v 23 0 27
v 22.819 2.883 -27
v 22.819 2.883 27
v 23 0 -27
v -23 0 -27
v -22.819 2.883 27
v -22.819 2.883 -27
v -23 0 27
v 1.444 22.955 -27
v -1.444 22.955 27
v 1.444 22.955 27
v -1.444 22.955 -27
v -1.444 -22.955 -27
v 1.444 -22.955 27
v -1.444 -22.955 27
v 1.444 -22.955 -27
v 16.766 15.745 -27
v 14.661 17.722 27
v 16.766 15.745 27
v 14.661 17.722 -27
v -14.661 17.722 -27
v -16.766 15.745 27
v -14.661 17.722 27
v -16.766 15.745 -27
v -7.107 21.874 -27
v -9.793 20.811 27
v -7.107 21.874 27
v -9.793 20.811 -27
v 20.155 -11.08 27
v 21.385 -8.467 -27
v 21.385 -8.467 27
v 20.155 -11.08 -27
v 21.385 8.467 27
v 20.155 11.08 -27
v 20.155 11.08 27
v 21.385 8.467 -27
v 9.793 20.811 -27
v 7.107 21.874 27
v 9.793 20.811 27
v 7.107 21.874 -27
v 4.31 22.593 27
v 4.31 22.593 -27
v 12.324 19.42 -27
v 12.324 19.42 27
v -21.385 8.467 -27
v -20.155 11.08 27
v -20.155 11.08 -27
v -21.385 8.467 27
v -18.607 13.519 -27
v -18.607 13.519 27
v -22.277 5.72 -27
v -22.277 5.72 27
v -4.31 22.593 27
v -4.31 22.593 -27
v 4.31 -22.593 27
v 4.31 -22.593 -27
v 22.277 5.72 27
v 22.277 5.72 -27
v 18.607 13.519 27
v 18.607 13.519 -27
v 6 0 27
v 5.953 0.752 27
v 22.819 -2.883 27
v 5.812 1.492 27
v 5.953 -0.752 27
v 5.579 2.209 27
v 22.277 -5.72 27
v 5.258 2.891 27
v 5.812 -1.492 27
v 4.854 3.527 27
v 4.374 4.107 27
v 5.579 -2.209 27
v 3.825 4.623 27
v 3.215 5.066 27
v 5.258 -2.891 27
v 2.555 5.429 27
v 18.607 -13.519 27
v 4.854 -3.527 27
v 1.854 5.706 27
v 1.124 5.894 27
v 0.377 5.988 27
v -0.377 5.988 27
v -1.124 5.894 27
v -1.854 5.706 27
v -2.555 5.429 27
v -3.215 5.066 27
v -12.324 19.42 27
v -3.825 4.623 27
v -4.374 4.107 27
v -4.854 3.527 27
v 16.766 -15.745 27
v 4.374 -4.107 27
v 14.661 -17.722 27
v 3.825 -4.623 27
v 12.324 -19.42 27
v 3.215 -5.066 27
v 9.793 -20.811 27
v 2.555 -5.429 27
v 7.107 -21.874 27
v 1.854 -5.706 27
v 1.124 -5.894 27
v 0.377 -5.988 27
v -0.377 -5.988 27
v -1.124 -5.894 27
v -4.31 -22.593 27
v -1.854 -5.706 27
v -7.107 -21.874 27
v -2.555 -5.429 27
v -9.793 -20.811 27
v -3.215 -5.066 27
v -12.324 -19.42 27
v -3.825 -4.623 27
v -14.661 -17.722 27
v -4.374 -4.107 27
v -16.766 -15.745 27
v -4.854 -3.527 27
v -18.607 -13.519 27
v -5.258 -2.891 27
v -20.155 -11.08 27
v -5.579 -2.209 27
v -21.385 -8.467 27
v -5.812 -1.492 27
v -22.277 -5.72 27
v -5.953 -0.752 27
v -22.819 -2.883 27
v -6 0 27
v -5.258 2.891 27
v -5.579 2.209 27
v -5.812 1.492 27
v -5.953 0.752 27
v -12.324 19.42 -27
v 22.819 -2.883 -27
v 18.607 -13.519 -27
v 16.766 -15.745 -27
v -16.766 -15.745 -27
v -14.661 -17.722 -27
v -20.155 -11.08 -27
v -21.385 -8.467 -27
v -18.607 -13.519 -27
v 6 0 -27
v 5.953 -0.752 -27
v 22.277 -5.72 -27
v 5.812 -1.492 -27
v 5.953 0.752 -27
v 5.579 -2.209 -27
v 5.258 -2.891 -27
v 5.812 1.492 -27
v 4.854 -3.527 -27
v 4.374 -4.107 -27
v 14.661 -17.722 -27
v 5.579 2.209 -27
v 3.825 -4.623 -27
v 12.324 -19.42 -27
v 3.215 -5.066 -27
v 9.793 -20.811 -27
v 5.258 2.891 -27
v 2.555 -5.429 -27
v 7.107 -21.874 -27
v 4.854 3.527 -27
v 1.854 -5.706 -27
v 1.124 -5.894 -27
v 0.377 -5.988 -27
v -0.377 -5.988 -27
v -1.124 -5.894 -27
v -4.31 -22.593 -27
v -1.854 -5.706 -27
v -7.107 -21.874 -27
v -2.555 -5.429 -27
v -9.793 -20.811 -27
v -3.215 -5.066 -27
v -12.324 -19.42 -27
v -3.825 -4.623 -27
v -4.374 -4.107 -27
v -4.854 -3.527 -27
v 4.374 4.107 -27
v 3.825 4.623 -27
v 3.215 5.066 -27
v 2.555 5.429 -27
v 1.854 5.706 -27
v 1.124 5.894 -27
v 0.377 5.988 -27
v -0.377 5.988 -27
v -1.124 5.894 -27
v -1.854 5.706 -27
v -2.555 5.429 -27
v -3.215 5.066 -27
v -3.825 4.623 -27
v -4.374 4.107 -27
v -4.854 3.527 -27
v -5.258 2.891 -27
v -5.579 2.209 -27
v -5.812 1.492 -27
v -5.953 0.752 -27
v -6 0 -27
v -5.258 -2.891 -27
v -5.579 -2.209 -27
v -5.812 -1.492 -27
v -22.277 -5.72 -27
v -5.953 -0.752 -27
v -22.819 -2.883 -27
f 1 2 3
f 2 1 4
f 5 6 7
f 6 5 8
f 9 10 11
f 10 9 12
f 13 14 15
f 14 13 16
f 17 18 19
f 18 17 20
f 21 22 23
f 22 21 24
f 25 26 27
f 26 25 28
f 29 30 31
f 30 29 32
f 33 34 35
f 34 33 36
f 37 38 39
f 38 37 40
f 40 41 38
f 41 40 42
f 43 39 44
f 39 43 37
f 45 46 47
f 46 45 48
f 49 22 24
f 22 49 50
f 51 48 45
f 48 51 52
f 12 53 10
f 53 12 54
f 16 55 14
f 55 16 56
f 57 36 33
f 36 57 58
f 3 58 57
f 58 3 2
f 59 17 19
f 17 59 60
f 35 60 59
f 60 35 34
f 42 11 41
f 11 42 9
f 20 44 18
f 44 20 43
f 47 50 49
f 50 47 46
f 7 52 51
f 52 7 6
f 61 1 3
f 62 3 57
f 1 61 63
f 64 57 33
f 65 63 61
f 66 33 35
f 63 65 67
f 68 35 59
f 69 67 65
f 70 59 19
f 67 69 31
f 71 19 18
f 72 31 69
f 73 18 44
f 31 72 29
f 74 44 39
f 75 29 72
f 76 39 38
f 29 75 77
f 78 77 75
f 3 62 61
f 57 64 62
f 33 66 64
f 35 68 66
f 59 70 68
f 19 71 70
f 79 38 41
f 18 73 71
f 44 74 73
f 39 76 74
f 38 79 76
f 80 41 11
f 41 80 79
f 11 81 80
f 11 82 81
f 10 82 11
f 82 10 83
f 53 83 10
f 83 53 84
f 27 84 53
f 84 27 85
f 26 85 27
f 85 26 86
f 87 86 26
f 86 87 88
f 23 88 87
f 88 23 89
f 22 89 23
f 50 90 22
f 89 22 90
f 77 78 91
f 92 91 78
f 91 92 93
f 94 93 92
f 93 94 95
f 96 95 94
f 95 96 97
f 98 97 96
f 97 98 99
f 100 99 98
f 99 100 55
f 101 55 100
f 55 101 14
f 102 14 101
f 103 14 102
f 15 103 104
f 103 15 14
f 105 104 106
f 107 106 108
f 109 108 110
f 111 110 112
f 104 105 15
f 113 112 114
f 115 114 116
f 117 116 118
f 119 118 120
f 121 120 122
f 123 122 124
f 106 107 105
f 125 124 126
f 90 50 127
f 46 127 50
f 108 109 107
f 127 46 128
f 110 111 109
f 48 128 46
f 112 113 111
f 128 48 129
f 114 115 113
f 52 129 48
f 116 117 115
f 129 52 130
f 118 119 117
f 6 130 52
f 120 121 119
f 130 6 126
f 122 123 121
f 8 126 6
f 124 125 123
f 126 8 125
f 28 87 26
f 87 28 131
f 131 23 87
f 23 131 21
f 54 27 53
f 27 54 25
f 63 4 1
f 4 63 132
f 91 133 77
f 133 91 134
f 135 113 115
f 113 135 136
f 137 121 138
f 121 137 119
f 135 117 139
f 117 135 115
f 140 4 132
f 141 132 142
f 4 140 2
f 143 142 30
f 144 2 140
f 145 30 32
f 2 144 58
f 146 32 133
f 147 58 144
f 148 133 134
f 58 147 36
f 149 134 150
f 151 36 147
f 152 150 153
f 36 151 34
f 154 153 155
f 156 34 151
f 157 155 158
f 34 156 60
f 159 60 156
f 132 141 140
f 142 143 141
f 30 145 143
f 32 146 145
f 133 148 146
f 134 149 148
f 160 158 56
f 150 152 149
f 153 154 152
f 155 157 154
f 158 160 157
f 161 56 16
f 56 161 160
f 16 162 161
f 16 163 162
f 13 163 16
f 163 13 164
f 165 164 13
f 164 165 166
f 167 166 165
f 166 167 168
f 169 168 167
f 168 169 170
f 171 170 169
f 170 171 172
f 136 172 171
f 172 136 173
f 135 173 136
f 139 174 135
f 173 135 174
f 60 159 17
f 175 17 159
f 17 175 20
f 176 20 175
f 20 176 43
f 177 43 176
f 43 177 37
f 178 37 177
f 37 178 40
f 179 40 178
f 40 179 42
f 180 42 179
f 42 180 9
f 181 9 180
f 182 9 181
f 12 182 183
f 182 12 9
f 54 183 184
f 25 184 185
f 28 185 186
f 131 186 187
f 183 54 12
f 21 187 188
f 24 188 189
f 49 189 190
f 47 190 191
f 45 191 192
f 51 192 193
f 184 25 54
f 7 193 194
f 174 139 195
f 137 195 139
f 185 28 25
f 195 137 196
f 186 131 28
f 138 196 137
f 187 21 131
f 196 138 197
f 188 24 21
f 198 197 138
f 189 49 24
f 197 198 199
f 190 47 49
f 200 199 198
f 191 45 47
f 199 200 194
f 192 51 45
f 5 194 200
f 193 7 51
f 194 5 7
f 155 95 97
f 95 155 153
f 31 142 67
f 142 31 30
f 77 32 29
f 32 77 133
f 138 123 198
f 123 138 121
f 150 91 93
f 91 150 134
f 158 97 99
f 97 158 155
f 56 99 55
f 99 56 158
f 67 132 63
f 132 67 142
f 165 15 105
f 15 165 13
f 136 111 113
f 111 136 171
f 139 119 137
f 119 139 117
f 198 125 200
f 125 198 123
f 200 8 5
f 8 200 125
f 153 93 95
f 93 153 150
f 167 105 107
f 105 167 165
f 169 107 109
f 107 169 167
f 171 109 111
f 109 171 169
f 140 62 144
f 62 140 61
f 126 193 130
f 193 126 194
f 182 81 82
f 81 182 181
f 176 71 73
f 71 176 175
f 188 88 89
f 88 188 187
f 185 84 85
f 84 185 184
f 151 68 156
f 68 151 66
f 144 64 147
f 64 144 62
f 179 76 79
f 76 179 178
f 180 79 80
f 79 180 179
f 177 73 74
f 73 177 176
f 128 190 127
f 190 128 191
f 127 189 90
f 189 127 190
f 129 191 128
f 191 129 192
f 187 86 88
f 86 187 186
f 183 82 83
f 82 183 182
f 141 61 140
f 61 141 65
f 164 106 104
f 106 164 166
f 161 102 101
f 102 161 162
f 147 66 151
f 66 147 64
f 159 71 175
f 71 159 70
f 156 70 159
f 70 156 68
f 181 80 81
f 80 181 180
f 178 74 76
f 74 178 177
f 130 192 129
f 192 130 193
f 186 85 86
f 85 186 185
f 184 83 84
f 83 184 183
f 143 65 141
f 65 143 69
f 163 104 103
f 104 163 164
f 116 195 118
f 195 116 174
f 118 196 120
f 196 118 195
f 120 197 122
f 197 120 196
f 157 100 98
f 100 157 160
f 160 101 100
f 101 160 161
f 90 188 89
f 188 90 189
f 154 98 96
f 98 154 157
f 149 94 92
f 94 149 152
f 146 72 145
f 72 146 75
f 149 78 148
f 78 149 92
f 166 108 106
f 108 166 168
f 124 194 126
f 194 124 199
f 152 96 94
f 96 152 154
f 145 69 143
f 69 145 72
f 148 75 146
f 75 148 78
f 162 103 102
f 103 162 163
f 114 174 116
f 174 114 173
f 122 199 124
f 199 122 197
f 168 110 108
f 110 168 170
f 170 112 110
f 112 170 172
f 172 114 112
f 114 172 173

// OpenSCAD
$fn = 50;


difference() {
	union() {
		translate(v = [0, 0, -27.0000000000]) {
			cylinder(h = 54, r = 23.0000000000);
		}
	}
	union() {
		translate(v = [0, 0, -100.0000000000]) {
			cylinder(h = 200, r = 6);
		}
	}
}
